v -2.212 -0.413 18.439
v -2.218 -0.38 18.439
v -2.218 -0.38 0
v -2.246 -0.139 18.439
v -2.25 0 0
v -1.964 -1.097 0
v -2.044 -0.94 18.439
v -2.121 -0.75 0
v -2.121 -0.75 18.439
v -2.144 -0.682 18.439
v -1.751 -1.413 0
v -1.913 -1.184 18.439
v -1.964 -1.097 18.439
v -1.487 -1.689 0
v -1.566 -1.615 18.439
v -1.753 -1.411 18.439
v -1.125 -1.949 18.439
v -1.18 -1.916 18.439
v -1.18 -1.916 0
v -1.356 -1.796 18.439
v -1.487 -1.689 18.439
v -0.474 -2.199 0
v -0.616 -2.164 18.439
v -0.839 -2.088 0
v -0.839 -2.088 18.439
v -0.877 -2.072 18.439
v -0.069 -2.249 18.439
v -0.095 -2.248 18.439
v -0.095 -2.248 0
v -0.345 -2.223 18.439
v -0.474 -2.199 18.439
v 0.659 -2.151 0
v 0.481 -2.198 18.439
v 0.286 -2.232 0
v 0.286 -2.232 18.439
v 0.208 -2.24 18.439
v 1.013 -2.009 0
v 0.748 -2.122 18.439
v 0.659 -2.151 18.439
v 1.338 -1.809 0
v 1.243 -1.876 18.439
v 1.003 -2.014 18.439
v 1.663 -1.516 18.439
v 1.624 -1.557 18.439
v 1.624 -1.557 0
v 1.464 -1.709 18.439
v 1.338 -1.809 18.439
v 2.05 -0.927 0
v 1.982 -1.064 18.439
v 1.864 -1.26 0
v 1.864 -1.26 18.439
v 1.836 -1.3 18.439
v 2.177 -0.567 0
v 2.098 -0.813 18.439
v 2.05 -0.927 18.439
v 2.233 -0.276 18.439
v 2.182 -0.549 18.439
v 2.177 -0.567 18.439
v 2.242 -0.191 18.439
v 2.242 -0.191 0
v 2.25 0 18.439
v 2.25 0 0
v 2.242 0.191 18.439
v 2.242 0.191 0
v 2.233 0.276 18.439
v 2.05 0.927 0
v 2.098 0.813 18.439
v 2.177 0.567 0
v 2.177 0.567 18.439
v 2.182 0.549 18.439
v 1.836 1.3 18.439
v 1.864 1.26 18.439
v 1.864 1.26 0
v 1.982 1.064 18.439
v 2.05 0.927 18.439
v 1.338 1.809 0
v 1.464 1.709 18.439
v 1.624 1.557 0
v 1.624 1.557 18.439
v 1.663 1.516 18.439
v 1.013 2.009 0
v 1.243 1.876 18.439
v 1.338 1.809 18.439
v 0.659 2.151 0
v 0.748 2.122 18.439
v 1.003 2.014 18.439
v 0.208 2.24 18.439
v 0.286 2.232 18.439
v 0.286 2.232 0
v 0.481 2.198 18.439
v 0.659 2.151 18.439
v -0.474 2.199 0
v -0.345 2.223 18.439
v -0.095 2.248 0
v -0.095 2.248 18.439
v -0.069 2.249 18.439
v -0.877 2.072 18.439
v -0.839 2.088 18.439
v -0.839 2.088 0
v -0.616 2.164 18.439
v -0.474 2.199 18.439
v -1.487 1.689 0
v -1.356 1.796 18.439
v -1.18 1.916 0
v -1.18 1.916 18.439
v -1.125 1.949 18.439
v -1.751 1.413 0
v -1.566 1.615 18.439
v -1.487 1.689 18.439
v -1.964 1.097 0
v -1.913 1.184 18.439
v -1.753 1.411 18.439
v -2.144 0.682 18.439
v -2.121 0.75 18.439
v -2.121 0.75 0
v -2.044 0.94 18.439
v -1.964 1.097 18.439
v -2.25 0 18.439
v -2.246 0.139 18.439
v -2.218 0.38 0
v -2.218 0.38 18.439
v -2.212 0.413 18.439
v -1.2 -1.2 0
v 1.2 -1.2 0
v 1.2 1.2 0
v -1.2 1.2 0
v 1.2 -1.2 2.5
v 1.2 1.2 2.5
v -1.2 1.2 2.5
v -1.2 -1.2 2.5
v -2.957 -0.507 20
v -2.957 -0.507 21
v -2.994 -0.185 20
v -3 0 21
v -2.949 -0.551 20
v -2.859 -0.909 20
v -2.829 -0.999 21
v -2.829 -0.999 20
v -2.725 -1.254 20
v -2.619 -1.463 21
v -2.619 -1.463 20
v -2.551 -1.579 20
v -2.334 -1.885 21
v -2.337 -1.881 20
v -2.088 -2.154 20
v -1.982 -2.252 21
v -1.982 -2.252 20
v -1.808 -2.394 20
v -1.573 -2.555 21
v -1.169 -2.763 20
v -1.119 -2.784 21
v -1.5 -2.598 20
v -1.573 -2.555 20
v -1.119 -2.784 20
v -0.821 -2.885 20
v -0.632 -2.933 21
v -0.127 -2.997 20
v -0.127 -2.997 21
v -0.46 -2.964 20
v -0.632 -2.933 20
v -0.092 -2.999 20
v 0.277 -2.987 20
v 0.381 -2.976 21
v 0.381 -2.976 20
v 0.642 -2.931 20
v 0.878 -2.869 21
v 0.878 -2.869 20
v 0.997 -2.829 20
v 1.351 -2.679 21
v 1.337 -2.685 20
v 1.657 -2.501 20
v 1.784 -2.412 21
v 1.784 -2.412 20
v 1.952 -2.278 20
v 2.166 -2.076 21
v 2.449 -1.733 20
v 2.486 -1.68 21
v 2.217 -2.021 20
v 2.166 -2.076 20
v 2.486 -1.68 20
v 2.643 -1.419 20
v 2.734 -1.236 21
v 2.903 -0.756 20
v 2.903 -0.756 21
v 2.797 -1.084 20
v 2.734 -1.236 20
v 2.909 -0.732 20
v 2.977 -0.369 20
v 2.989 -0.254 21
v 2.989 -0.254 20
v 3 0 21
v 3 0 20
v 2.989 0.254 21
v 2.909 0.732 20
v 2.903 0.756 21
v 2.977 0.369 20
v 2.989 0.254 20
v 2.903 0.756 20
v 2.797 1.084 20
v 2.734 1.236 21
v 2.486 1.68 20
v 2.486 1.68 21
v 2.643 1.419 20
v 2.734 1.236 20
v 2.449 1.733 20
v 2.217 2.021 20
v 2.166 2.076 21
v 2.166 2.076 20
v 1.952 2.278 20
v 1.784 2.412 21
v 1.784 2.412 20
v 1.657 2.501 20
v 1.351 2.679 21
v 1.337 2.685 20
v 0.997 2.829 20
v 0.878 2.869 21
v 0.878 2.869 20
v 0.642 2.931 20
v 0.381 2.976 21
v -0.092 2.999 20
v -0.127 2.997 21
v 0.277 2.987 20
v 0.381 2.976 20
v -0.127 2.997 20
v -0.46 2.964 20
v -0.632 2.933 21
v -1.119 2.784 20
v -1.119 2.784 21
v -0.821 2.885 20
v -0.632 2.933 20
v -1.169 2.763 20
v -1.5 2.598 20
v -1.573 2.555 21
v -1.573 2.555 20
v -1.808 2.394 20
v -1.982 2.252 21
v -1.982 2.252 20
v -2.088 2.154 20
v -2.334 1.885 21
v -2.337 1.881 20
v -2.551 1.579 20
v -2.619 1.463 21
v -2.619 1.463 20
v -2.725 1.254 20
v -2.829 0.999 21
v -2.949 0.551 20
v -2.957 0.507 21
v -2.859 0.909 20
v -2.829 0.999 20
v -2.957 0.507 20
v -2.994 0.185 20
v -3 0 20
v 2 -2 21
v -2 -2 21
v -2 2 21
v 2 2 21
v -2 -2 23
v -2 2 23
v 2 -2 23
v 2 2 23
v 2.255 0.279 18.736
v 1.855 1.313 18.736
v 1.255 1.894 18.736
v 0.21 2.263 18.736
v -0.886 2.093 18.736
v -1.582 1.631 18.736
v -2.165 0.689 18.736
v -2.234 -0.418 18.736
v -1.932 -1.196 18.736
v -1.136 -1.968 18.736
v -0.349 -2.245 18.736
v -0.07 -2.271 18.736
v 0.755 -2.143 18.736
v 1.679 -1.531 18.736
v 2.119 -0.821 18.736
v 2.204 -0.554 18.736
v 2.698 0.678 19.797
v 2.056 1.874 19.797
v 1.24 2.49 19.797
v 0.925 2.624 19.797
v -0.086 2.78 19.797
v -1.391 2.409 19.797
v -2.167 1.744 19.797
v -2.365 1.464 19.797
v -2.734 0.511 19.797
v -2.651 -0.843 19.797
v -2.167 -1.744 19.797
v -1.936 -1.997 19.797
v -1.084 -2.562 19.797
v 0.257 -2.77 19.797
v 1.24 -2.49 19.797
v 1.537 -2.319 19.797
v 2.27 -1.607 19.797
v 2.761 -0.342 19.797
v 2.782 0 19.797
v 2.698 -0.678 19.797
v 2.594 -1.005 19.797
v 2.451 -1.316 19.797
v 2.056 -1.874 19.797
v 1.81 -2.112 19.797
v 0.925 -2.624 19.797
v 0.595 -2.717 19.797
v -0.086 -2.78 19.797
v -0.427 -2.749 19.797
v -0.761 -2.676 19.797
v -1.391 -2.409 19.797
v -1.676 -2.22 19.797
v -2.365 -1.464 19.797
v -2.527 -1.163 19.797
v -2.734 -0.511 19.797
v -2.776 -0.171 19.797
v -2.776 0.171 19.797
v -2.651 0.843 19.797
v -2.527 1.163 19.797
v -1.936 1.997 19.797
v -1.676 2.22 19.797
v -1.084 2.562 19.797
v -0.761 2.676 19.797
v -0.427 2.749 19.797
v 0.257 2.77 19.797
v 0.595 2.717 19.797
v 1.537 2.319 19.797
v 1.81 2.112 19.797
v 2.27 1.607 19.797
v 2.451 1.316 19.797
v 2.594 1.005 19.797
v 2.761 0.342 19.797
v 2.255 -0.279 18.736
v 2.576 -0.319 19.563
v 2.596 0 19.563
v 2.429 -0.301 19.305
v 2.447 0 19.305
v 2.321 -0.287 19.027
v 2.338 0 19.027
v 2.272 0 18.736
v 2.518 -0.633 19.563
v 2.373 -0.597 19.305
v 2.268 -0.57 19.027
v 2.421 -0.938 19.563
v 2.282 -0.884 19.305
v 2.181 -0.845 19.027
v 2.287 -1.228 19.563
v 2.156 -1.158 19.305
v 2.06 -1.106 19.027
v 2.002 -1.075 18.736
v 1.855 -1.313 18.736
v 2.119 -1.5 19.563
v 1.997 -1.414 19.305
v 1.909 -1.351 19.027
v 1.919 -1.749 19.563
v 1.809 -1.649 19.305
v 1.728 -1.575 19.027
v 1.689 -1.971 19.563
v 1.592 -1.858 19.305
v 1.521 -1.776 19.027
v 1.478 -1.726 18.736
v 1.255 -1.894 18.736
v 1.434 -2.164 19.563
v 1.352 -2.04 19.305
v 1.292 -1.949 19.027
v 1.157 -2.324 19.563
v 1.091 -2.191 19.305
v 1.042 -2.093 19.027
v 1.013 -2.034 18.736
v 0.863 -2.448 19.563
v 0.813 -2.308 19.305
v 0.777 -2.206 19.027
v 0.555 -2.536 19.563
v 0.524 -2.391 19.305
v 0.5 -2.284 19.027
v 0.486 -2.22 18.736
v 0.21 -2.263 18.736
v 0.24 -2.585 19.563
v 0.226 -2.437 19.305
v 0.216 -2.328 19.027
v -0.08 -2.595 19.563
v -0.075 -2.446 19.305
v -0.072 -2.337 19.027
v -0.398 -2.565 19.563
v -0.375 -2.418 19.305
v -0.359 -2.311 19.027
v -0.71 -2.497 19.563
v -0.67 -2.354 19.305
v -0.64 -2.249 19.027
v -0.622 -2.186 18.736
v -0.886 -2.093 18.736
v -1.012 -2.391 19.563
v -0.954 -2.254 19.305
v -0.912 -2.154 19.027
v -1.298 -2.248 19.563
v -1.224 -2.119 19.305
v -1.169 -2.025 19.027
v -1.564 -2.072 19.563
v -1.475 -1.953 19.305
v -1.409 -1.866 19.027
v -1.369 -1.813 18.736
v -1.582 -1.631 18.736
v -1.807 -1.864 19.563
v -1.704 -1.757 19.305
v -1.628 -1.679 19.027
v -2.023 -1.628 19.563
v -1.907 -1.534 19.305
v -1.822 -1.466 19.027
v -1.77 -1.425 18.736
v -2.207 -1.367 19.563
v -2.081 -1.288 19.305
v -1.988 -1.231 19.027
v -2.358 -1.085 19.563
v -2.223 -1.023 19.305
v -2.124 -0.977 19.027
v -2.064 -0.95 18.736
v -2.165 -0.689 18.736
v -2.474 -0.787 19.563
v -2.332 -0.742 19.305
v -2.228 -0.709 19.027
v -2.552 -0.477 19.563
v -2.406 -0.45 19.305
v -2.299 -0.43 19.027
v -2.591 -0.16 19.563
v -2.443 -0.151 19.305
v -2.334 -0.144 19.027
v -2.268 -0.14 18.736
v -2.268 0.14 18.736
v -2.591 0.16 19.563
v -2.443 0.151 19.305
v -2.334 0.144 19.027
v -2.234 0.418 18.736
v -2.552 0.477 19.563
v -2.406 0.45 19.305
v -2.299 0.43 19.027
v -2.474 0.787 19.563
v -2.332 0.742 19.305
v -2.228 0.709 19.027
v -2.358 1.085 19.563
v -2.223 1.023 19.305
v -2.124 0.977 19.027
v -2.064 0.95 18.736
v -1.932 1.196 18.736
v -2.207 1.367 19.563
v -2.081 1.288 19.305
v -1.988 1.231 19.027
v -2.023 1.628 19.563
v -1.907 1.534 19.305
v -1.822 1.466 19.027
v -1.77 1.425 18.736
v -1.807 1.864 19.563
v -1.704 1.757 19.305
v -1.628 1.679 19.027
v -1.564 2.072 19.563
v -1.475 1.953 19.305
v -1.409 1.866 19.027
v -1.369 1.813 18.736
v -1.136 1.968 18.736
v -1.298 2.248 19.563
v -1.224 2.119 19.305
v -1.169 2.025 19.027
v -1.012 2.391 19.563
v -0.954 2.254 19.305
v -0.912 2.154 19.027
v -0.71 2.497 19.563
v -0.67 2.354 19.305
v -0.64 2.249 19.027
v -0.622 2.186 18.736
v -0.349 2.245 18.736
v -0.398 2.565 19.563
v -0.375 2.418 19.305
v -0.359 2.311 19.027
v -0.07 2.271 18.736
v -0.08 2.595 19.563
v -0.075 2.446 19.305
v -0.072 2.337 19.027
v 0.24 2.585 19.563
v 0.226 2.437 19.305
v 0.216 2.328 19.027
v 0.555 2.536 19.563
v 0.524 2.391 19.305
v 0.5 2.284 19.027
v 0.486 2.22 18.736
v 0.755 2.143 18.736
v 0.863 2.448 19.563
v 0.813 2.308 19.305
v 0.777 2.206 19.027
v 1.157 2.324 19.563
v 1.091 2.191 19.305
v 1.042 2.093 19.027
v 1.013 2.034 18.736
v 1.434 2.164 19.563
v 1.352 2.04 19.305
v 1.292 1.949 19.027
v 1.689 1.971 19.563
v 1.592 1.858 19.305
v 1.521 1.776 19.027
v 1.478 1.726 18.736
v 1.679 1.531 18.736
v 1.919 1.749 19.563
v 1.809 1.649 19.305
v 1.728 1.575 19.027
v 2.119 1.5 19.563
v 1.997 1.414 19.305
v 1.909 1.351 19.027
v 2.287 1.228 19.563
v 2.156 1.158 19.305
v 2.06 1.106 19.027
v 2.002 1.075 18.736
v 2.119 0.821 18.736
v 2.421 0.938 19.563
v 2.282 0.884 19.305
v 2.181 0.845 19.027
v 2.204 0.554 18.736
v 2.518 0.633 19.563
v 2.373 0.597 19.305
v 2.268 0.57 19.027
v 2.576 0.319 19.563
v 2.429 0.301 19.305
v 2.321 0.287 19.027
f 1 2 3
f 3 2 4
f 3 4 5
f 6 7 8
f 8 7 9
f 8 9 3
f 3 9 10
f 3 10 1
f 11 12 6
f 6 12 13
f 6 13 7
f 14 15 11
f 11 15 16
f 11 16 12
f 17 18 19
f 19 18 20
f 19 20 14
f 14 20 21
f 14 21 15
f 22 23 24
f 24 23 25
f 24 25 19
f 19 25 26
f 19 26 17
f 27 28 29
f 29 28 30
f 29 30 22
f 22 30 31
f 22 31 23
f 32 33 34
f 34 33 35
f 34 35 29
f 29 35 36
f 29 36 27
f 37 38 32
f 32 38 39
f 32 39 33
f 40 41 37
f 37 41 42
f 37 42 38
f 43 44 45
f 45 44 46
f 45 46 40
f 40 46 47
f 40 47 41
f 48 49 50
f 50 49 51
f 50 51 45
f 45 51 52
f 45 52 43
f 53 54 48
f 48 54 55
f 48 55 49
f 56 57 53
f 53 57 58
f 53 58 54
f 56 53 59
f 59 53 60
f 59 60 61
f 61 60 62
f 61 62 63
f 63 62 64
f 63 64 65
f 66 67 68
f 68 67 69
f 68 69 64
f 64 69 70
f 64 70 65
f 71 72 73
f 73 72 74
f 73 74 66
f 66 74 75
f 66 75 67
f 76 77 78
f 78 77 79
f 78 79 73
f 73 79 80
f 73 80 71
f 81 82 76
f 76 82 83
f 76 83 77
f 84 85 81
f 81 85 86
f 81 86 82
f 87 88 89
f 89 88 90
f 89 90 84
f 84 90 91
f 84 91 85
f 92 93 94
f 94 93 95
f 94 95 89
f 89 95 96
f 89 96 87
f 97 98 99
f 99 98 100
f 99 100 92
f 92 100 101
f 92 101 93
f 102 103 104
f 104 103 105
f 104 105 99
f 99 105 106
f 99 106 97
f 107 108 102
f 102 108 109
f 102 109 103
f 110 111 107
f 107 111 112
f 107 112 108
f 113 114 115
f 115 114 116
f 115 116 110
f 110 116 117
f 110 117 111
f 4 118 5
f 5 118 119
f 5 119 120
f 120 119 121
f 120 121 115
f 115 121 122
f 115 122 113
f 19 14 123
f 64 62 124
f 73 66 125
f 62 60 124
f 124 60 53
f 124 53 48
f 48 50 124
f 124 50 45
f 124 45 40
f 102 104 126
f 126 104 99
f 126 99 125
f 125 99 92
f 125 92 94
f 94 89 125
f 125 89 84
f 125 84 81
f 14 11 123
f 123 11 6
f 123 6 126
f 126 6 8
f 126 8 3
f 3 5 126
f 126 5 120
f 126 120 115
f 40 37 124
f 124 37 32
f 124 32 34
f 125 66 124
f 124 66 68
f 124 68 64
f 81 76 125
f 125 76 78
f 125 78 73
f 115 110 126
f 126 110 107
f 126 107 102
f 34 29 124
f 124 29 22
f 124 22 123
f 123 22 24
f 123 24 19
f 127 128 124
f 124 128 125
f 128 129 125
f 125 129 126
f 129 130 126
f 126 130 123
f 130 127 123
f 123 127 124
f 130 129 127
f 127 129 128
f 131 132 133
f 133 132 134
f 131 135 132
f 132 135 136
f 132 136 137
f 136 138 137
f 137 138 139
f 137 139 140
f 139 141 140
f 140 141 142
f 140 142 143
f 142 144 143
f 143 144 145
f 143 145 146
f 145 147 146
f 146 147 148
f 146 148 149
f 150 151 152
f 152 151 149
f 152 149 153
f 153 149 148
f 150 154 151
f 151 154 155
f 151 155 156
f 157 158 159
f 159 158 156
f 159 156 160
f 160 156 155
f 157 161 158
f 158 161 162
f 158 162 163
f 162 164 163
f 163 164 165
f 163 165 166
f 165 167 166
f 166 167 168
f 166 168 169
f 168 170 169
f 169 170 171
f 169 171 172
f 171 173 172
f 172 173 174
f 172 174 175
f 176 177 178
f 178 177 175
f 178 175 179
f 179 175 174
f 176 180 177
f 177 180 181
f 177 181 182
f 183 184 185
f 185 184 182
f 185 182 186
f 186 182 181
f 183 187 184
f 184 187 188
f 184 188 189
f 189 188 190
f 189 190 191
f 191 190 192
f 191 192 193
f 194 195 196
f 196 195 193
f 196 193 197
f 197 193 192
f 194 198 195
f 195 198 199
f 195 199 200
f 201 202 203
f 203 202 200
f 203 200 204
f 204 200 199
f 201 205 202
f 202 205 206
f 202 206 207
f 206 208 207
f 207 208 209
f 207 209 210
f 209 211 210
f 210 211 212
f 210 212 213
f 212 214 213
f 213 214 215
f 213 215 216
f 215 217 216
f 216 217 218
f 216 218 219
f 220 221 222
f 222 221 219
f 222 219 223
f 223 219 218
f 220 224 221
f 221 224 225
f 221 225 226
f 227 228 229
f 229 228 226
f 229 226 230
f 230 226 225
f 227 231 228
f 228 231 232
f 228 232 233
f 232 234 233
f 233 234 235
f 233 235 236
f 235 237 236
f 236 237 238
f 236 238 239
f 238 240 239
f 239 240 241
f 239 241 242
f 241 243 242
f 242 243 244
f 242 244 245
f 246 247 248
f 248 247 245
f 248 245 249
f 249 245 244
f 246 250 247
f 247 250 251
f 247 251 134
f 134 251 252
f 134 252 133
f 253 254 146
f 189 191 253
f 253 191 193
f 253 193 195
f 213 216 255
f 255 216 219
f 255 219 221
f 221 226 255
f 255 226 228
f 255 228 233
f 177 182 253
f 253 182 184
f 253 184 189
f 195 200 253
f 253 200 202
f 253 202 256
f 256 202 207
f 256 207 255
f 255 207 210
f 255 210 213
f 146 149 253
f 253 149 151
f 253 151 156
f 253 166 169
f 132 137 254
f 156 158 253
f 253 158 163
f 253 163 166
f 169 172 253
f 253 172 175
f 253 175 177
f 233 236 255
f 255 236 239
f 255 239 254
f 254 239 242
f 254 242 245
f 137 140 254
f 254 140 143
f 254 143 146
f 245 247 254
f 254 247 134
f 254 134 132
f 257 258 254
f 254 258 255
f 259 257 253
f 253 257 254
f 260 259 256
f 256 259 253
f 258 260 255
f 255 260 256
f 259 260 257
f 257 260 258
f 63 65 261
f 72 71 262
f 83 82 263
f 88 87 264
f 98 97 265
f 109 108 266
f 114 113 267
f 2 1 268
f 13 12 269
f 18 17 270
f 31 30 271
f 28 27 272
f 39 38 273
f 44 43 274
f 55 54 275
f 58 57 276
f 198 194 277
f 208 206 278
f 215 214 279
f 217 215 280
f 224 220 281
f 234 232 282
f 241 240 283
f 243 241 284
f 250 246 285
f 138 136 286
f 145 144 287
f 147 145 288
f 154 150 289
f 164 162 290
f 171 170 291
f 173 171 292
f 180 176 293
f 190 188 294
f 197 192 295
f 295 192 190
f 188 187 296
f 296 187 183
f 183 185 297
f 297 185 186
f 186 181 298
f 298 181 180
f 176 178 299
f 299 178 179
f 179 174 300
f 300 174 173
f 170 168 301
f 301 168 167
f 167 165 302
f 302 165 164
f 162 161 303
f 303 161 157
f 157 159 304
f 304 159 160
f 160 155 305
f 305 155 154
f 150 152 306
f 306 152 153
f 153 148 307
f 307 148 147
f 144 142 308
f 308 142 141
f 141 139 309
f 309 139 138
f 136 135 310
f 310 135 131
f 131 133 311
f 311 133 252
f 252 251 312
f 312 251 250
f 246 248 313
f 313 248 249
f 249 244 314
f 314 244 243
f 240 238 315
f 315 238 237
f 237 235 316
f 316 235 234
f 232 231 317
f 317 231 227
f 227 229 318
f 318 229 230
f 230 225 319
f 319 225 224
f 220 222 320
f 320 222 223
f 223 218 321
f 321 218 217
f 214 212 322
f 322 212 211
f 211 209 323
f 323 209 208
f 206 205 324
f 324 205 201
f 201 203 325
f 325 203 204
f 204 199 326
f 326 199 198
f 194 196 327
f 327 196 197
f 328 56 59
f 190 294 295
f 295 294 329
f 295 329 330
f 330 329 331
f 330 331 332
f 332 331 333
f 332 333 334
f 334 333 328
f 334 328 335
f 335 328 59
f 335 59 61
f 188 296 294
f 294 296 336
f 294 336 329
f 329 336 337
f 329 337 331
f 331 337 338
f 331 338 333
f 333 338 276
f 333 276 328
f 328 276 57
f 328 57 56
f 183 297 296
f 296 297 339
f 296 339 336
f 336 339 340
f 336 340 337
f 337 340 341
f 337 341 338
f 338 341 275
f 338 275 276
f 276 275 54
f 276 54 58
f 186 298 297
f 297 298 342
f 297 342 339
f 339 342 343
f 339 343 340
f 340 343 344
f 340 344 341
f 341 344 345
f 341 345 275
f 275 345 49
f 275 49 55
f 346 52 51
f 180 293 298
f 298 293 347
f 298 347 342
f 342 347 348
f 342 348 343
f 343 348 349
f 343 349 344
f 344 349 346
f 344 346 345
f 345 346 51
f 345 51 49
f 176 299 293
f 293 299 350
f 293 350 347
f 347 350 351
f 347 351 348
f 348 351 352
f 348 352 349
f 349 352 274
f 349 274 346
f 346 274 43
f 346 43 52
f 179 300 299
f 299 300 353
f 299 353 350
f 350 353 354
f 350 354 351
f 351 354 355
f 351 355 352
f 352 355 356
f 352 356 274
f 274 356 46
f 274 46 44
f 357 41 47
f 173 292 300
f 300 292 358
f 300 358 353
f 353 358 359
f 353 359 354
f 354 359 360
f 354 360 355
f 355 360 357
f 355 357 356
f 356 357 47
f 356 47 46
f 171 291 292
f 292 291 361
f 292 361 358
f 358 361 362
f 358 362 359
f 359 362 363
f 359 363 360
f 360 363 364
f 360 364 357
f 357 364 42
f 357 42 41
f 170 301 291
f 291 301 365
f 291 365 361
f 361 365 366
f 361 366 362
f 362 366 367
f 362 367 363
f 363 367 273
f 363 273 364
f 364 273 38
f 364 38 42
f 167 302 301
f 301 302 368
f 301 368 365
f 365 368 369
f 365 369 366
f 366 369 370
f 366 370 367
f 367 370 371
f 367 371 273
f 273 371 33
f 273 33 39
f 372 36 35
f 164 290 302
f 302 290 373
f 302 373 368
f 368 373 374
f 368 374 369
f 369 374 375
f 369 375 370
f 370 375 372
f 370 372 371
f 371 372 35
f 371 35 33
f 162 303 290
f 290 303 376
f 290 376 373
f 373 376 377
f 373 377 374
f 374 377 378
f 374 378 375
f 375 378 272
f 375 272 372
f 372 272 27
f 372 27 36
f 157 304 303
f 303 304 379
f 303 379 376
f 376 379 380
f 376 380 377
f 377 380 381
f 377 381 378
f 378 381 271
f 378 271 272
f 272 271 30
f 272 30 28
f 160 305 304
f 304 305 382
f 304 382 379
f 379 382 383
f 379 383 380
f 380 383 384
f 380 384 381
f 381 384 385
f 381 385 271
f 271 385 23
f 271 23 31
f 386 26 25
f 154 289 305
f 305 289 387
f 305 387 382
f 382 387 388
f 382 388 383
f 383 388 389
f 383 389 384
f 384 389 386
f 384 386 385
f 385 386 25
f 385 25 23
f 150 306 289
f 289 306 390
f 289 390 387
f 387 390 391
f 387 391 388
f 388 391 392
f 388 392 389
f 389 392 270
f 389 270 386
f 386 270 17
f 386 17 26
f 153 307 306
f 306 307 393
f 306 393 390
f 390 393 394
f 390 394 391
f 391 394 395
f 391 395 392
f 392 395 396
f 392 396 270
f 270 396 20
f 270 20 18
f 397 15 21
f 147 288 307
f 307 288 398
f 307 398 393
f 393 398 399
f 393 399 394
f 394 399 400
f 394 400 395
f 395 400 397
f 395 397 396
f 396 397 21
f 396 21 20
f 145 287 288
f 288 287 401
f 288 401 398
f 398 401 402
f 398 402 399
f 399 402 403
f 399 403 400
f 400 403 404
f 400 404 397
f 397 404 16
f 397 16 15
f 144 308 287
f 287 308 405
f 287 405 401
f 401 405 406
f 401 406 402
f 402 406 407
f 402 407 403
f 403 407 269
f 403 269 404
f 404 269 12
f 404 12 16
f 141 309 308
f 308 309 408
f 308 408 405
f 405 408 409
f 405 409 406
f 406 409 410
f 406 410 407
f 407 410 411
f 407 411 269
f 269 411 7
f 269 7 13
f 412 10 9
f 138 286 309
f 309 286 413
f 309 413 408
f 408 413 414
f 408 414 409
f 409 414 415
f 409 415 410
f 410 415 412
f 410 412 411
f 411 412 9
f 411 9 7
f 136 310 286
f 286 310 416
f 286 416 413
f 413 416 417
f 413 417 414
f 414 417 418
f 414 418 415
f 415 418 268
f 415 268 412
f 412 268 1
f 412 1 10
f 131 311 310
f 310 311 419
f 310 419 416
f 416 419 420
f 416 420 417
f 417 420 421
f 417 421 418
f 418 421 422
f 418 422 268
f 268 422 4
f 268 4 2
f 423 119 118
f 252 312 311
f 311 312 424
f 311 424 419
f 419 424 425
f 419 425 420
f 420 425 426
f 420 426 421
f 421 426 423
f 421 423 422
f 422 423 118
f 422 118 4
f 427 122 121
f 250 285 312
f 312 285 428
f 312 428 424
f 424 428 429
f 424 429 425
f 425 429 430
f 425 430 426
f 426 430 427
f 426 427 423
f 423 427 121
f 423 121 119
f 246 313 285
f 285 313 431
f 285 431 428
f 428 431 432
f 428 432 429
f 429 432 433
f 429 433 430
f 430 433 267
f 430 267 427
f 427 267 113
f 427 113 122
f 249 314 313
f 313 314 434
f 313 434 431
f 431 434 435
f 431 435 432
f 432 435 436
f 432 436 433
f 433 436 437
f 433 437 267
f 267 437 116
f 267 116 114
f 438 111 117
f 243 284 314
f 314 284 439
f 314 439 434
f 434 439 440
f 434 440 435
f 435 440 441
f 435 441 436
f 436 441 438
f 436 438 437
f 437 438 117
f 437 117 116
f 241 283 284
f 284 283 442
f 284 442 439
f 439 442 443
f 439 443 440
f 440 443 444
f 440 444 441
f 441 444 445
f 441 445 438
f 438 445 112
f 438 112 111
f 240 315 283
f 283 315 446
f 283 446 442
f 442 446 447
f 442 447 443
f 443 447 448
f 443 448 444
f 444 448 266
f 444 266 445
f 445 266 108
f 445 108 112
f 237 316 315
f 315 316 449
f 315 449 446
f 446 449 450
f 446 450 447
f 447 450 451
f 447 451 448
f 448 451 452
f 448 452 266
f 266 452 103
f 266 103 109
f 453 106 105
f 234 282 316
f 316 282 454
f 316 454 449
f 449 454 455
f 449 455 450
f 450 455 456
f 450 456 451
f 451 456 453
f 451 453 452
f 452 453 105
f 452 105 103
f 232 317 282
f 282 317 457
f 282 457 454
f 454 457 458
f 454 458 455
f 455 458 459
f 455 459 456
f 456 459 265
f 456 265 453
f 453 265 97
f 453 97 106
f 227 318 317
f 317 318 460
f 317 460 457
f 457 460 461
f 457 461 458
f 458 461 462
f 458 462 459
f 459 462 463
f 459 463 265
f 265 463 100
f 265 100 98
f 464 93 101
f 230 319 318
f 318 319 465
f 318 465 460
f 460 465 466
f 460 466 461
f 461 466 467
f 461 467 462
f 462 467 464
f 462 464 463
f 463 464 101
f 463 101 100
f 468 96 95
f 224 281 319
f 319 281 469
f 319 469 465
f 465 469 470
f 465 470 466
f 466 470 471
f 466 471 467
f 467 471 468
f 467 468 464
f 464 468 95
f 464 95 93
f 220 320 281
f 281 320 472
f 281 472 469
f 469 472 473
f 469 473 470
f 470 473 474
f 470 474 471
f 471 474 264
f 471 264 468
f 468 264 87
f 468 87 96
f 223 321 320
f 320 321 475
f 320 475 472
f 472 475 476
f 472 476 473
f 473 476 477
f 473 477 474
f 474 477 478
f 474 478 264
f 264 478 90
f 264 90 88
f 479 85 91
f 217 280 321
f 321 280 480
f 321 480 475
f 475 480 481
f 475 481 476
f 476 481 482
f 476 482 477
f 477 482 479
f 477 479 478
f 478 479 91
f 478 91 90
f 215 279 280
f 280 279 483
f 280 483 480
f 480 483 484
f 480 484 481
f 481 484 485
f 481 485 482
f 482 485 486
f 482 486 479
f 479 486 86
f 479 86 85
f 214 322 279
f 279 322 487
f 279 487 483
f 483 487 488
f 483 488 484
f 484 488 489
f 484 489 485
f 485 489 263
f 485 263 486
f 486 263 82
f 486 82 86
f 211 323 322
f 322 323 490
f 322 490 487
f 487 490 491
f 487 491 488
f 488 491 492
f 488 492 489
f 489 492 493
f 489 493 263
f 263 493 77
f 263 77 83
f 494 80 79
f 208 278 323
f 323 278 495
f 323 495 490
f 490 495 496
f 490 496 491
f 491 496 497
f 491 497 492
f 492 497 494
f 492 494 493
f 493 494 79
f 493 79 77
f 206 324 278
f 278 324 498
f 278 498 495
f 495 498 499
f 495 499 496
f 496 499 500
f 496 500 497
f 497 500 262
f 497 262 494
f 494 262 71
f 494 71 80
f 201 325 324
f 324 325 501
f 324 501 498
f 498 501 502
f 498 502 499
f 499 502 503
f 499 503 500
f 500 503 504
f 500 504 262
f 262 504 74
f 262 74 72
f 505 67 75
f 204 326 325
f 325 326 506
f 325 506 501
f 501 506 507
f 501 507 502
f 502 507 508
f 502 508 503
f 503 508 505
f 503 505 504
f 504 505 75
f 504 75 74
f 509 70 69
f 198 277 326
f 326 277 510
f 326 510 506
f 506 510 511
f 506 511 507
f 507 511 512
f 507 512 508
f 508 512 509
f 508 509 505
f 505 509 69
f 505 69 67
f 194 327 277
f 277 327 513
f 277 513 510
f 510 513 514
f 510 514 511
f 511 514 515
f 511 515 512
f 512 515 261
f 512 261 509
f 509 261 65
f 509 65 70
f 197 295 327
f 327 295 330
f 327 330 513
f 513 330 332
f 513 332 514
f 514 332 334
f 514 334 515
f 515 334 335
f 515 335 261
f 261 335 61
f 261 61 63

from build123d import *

# Parameters (mm, degrees)
SKETCH_1_R          = 2.25
EXTRUDE_2_DEPTH     = 20
SKETCH_7_W          = 2.4
SKETCH_7_H          = 2.4
CUT_EXTRUDE_3_DEPTH = 2.5
SKETCH_9_R          = 3
EXTRUDE_4_DEPTH     = 1
SKETCH_10_W         = 4
SKETCH_10_H         = 4
EXTRUDE_5_DEPTH     = 2
FILLET_1_R          = 2


with BuildPart() as part:
    # 草图1 → 凸台-拉伸2 (new body)
    with BuildSketch(Plane.XY):
        Circle(SKETCH_1_R)
    extrude(amount=EXTRUDE_2_DEPTH)

    # 草图7 → 切除-拉伸3 (cut)
    with BuildSketch(Plane.XY):
        Rectangle(SKETCH_7_W, SKETCH_7_H)
    extrude(amount=CUT_EXTRUDE_3_DEPTH, mode=Mode.SUBTRACT)

    # 草图9 → 凸台-拉伸4 (add)
    with BuildSketch(Plane.XY.offset(20)):
        Circle(SKETCH_9_R)
    extrude(amount=EXTRUDE_4_DEPTH)

    # 草图10 → 凸台-拉伸5 (add)
    with BuildSketch(Plane.XY.offset(21)):
        Rectangle(SKETCH_10_W, SKETCH_10_H)
    extrude(amount=EXTRUDE_5_DEPTH)

    # 圆角1
    # the kernel refuses this fillet: 2 mm, written as the material it adds along each edge
    with BuildSketch(Plane(origin=(0, 0, 20), x_dir=(1, 0, 0), z_dir=(0, -1, 0))) as fillet_1_piece_1:
        with BuildLine():
            CenterArc((4.25, -1.5612495), FILLET_1_R, 128.682187453, 51.317812547)
            Line((2.25, -1.5612495), (2.21, -1.5612495))
            Line((2.21, -1.5612495), (2.21, 0))
            Line((2.21, 0), (2.25, 0.04))
            ThreePointArc((2.25, 0.04), (2.625, 0.04), (2.975, 0.03122499))
            Line((2.975, 0.03122499), (3, 0))
        make_face()
    revolve(axis=Axis((0, 0, 20), (0, 0, 1)))


solid = part.part
